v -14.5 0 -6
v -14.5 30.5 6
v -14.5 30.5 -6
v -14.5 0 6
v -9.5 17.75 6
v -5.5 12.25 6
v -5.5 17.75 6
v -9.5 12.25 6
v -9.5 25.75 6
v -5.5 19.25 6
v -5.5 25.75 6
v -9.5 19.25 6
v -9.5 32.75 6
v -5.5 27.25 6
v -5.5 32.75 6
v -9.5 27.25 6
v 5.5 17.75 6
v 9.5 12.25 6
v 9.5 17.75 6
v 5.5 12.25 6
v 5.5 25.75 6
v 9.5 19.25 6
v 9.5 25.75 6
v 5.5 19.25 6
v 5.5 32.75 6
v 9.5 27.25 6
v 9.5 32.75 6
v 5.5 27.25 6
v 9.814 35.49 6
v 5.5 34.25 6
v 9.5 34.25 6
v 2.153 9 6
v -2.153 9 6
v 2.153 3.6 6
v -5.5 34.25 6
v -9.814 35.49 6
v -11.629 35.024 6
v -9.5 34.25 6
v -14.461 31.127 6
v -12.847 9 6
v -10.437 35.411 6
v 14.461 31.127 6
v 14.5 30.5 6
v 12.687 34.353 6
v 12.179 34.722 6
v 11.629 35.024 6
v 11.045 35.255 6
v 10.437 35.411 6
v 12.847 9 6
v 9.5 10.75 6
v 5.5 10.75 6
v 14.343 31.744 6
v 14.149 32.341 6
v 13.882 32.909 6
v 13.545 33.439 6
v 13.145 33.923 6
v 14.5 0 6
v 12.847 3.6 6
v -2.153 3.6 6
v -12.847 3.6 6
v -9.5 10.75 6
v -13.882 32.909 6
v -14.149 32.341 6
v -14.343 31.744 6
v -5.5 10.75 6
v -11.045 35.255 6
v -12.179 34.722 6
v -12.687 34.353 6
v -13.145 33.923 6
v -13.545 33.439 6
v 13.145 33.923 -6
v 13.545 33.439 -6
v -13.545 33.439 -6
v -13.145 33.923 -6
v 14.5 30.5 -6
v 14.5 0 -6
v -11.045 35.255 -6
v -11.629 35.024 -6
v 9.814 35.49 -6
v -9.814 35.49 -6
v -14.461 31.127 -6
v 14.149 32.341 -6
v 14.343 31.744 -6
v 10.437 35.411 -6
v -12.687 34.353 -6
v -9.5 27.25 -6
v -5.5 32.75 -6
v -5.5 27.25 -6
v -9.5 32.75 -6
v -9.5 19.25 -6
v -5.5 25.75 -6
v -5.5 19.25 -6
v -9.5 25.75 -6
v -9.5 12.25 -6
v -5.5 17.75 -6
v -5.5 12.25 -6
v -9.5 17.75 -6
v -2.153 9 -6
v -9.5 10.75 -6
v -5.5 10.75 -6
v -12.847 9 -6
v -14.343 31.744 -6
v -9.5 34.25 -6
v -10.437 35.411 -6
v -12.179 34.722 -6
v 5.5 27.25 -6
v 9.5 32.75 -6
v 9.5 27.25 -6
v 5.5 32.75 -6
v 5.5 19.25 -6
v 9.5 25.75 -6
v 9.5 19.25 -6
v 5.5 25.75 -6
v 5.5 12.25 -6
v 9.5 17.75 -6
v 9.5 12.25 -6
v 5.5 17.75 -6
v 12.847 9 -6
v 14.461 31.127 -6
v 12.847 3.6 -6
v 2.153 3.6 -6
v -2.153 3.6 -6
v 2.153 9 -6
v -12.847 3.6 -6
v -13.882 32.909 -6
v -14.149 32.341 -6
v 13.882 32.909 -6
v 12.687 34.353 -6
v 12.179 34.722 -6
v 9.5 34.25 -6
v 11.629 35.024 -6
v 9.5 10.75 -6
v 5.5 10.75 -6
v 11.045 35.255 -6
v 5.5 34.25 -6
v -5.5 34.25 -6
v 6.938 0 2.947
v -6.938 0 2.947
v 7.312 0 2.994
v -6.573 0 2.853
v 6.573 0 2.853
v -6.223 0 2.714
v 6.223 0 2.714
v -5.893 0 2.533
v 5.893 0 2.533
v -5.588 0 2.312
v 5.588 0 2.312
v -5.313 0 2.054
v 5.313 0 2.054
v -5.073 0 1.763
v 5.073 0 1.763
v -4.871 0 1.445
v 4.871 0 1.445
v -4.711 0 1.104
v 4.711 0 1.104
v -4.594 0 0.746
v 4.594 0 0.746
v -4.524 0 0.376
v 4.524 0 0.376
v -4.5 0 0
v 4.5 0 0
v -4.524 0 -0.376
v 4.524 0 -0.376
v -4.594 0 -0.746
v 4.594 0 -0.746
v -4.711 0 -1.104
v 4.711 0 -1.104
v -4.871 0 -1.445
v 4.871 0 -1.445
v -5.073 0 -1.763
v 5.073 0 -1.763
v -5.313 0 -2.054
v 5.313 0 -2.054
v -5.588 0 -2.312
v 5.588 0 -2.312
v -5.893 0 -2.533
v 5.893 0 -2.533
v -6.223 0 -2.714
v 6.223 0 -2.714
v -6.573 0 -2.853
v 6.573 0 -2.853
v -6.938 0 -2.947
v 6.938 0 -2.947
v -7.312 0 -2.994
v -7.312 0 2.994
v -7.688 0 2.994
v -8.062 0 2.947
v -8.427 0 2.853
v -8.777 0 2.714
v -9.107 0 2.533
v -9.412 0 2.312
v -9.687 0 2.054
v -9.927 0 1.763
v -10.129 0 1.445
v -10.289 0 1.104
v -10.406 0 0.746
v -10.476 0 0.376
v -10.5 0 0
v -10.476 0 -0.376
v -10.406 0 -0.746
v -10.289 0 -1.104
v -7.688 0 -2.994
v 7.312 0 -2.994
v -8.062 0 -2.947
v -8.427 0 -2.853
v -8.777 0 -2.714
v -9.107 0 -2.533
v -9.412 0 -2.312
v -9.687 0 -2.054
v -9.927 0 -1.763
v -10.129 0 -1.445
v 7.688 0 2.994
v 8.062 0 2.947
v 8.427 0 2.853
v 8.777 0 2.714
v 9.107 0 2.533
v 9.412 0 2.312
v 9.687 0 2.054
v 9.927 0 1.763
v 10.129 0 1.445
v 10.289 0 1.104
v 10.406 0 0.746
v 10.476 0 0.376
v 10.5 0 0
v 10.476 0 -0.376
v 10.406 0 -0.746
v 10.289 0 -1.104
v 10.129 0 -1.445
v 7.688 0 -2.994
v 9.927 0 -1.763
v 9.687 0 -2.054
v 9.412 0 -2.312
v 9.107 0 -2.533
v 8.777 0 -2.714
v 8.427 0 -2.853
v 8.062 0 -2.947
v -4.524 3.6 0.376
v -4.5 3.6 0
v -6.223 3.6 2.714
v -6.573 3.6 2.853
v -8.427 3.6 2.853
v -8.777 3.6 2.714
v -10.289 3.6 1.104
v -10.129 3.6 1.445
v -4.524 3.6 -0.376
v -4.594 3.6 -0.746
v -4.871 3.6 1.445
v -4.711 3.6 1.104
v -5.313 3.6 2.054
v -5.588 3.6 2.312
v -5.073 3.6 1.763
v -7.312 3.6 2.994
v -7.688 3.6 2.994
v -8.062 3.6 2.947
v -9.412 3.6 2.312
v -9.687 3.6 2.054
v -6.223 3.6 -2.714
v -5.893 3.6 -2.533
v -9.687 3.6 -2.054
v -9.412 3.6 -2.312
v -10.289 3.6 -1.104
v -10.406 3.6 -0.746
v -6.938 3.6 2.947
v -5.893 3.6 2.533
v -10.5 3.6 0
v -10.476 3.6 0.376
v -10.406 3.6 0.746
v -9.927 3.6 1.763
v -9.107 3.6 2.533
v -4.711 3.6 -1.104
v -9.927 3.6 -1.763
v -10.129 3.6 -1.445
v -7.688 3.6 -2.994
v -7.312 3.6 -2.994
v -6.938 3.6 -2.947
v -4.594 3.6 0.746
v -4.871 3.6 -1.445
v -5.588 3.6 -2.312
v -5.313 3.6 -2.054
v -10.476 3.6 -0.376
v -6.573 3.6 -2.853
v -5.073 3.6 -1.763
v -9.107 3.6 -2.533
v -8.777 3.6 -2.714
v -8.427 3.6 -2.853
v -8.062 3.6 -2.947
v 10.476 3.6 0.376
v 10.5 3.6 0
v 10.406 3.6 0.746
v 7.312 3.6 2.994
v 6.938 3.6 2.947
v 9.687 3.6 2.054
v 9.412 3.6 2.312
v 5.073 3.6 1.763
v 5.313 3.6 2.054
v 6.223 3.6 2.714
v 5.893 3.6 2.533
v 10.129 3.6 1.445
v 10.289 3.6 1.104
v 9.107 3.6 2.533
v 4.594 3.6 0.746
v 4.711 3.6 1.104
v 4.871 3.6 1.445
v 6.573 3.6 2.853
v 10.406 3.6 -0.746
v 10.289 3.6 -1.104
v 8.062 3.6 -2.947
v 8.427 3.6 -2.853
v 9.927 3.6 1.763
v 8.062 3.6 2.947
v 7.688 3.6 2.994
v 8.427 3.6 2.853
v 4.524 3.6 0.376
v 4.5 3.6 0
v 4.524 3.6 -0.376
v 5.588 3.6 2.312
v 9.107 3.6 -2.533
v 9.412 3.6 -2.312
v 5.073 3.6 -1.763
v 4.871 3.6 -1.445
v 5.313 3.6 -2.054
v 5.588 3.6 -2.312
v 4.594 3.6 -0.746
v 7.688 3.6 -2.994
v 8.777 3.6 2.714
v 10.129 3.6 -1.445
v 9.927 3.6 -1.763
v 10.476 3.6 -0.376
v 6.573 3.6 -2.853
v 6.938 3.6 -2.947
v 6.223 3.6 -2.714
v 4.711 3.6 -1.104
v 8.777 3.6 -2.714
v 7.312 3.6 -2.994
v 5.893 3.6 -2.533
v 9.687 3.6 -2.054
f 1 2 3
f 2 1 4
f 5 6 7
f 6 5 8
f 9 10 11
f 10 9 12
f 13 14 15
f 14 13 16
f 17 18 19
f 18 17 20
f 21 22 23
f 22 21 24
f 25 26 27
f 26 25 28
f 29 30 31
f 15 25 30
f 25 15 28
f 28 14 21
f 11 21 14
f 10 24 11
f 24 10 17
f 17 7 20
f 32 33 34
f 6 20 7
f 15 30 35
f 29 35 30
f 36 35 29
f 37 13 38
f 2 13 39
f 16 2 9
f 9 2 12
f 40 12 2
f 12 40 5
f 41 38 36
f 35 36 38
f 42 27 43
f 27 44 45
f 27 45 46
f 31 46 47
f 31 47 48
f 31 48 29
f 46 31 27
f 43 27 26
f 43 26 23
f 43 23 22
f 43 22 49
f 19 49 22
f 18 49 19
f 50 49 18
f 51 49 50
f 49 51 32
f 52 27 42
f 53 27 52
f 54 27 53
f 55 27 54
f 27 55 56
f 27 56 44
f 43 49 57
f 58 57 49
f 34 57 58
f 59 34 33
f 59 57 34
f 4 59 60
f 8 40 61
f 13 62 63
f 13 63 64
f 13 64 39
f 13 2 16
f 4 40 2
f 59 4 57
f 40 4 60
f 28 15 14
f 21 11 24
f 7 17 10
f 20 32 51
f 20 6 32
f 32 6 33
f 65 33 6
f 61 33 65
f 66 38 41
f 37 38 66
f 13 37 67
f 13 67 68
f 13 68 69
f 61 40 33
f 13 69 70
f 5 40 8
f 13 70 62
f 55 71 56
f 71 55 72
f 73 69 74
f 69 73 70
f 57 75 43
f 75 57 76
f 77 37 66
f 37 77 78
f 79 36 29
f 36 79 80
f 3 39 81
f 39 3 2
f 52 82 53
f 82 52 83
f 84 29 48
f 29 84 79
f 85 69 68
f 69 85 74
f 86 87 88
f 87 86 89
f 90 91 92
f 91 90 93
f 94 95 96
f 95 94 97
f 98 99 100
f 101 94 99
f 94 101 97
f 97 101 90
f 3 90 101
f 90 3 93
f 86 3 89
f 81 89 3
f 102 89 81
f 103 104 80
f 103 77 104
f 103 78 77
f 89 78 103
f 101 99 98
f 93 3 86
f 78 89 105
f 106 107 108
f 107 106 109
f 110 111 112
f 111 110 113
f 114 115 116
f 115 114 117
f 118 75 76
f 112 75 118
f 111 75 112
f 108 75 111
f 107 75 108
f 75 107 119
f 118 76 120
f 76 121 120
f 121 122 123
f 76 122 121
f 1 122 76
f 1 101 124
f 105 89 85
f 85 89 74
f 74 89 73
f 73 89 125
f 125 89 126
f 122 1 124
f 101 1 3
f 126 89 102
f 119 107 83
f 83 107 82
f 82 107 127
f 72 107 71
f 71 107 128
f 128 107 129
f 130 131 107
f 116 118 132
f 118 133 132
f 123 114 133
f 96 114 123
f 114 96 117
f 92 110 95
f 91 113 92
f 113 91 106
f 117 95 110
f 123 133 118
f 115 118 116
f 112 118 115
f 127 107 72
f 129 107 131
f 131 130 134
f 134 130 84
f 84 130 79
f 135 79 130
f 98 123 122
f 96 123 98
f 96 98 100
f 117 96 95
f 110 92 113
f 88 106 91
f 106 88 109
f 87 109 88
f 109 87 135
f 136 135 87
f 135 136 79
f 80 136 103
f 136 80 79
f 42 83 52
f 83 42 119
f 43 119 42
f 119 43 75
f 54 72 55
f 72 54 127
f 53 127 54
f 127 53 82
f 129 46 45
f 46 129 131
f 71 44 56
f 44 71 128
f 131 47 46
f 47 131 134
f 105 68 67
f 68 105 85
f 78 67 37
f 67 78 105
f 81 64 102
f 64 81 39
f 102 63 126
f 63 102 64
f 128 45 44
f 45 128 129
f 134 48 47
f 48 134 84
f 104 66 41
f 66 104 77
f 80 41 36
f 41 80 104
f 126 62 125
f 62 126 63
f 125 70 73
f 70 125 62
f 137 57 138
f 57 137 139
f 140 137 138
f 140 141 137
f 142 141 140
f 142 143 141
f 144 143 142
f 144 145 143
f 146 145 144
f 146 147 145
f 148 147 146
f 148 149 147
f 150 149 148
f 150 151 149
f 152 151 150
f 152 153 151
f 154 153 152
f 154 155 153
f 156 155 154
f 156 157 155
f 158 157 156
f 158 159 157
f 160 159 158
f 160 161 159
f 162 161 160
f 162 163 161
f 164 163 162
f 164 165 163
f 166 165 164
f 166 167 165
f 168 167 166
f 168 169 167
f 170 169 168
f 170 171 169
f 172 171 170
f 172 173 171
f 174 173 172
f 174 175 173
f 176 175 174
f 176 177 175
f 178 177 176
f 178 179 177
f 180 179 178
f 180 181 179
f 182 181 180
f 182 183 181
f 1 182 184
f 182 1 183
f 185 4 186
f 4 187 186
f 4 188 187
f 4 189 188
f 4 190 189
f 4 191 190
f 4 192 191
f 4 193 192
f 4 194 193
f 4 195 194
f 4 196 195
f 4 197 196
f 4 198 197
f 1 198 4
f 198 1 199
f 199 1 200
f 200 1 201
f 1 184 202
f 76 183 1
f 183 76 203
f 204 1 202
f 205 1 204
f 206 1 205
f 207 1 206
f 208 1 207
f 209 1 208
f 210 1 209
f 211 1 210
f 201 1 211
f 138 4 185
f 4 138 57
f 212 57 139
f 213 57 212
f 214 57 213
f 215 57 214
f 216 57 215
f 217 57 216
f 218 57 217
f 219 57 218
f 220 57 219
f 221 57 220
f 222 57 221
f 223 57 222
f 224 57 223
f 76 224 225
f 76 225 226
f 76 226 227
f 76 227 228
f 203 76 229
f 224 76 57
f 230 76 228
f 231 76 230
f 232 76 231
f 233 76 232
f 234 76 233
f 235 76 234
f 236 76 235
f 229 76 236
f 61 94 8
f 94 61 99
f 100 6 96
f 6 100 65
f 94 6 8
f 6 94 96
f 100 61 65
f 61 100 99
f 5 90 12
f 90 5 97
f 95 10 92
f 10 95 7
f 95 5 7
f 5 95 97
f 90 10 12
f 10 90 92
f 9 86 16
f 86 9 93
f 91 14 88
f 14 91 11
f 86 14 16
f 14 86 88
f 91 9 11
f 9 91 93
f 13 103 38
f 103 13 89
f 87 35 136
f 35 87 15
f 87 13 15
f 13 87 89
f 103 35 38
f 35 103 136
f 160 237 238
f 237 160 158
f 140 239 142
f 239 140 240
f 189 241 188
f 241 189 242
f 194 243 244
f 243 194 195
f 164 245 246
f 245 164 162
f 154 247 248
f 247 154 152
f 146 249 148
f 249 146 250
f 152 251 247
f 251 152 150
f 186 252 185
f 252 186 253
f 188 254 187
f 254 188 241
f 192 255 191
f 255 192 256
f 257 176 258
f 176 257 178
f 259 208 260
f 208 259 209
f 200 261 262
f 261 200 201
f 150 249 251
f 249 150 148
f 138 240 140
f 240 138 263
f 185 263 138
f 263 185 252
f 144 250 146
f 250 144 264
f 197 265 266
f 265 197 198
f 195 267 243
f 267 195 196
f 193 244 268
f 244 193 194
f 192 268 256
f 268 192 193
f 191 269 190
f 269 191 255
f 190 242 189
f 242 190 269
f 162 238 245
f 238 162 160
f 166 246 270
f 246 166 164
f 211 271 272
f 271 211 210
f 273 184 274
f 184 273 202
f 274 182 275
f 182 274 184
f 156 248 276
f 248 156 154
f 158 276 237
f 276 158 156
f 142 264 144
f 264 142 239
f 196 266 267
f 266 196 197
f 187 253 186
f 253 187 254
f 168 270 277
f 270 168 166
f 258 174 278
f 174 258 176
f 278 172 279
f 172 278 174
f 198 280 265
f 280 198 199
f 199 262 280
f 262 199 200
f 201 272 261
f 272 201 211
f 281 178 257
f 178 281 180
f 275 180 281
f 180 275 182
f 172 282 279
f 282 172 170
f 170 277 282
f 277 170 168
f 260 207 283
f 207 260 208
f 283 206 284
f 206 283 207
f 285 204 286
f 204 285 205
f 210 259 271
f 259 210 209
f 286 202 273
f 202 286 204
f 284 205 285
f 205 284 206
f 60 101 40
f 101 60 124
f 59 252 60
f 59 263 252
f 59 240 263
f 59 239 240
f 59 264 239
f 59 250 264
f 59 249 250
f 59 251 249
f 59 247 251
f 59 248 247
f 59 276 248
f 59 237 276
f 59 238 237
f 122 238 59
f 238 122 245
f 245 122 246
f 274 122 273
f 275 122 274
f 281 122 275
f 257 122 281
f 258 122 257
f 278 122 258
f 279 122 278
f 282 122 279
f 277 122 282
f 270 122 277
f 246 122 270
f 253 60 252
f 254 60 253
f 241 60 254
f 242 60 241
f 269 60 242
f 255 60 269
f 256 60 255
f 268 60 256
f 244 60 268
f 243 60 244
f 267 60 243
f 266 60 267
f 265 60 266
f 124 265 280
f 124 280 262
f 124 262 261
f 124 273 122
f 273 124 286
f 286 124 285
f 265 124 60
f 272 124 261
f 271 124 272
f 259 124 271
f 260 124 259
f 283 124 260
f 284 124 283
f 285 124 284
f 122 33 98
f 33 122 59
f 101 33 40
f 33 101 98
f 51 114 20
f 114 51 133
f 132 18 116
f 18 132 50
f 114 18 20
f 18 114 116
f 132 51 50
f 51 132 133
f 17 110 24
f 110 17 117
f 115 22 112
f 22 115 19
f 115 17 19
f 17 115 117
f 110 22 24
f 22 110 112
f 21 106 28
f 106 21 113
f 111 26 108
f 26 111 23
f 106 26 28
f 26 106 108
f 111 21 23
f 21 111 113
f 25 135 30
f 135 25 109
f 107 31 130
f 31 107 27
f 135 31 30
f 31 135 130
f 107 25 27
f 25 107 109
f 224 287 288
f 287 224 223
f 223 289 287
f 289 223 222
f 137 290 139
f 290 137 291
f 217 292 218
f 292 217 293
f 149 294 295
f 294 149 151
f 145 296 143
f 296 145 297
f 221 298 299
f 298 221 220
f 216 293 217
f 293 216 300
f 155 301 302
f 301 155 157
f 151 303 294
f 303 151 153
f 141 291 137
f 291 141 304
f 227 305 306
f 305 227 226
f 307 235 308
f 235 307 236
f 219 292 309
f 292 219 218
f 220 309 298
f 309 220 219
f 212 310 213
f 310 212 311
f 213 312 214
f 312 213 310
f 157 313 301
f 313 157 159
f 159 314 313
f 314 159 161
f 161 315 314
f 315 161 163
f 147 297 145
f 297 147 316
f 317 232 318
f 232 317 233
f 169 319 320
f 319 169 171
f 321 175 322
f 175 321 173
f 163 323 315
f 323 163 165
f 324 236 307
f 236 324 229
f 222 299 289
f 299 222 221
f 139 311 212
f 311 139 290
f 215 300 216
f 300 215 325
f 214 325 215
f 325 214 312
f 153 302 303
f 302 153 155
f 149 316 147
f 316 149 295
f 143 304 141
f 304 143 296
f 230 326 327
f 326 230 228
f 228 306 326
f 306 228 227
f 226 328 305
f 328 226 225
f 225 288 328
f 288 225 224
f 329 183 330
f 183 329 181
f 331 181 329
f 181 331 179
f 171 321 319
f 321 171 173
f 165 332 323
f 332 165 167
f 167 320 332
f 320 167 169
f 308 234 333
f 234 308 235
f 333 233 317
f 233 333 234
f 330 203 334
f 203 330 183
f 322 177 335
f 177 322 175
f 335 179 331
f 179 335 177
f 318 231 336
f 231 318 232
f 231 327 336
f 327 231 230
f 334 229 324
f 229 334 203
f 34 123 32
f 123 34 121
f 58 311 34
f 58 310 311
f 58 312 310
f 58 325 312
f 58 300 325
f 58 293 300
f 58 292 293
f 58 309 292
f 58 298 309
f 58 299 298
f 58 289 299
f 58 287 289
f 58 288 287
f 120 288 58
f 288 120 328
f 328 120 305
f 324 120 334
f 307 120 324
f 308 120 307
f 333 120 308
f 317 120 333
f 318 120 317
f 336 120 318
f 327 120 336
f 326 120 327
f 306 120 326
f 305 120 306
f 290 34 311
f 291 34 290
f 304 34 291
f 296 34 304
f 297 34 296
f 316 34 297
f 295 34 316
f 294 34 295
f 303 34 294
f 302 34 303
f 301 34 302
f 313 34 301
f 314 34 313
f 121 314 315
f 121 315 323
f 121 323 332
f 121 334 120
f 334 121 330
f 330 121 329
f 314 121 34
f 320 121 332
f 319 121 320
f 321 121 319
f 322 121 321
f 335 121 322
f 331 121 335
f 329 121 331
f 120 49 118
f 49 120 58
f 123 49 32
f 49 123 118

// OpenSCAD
$fn = 50;


difference() {
	union() {
		translate(v = [0, 21.0000000000, -6.0000000000]) {
			rotate(a = [0, 0, 0]) {
				hull() {
					translate(v = [-9.5000000000, 9.5000000000, 0]) {
						rotate(a = [0, 0, 0]) {
							translate(v = [0, 0, 0]) {
								rotate(a = [0, 0, 0]) {
									cylinder(h = 12, r = 5);
								}
							}
						}
					}
					translate(v = [9.5000000000, 9.5000000000, 0]) {
						rotate(a = [0, 0, 0]) {
							translate(v = [0, 0, 0]) {
								rotate(a = [0, 0, 0]) {
									cylinder(h = 12, r = 5);
								}
							}
						}
					}
					translate(v = [-9.5000000000, -9.5000000000, 0]) {
						rotate(a = [0, 0, 0]) {
							translate(v = [0, 0, 0]) {
								rotate(a = [0, 0, 0]) {
									cylinder(h = 12, r = 5);
								}
							}
						}
					}
					translate(v = [9.5000000000, -9.5000000000, 0]) {
						rotate(a = [0, 0, 0]) {
							translate(v = [0, 0, 0]) {
								rotate(a = [0, 0, 0]) {
									cylinder(h = 12, r = 5);
								}
							}
						}
					}
				}
			}
		}
		translate(v = [-14.5000000000, 0, -6.0000000000]) {
			rotate(a = [0, 0, 0]) {
				cube(size = [29, 13.5000000000, 12]);
			}
		}
	}
	union() {
		translate(v = [-9.5000000000, 10.7500000000, -50]) {
			rotate(a = [0, 0, 0]) {
				cube(size = [4, 1.5000000000, 100]);
			}
		}
		translate(v = [-9.5000000000, 17.7500000000, -50]) {
			rotate(a = [0, 0, 0]) {
				cube(size = [4, 1.5000000000, 100]);
			}
		}
		translate(v = [-9.5000000000, 25.7500000000, -50]) {
			rotate(a = [0, 0, 0]) {
				cube(size = [4, 1.5000000000, 100]);
			}
		}
		translate(v = [-9.5000000000, 32.7500000000, -50]) {
			rotate(a = [0, 0, 0]) {
				cube(size = [4, 1.5000000000, 100]);
			}
		}
		translate(v = [-7.5000000000, 8, 0]) {
			rotate(a = [90, 0, 0]) {
				cylinder(h = 8, r = 3.0000000000);
			}
		}
		translate(v = [-12.8466204506, 9, -25]) {
			rotate(a = [90, 0, 0]) {
				cube(size = [10.6932409012, 100, 5.4000000000]);
			}
		}
		translate(v = [5.5000000000, 10.7500000000, -50]) {
			rotate(a = [0, 0, 0]) {
				cube(size = [4, 1.5000000000, 100]);
			}
		}
		translate(v = [5.5000000000, 17.7500000000, -50]) {
			rotate(a = [0, 0, 0]) {
				cube(size = [4, 1.5000000000, 100]);
			}
		}
		translate(v = [5.5000000000, 25.7500000000, -50]) {
			rotate(a = [0, 0, 0]) {
				cube(size = [4, 1.5000000000, 100]);
			}
		}
		translate(v = [5.5000000000, 32.7500000000, -50]) {
			rotate(a = [0, 0, 0]) {
				cube(size = [4, 1.5000000000, 100]);
			}
		}
		translate(v = [7.5000000000, 8, 0]) {
			rotate(a = [90, 0, 0]) {
				cylinder(h = 8, r = 3.0000000000);
			}
		}
		translate(v = [2.1533795494, 9, -25]) {
			rotate(a = [90, 0, 0]) {
				cube(size = [10.6932409012, 100, 5.4000000000]);
			}
		}
	}
}
